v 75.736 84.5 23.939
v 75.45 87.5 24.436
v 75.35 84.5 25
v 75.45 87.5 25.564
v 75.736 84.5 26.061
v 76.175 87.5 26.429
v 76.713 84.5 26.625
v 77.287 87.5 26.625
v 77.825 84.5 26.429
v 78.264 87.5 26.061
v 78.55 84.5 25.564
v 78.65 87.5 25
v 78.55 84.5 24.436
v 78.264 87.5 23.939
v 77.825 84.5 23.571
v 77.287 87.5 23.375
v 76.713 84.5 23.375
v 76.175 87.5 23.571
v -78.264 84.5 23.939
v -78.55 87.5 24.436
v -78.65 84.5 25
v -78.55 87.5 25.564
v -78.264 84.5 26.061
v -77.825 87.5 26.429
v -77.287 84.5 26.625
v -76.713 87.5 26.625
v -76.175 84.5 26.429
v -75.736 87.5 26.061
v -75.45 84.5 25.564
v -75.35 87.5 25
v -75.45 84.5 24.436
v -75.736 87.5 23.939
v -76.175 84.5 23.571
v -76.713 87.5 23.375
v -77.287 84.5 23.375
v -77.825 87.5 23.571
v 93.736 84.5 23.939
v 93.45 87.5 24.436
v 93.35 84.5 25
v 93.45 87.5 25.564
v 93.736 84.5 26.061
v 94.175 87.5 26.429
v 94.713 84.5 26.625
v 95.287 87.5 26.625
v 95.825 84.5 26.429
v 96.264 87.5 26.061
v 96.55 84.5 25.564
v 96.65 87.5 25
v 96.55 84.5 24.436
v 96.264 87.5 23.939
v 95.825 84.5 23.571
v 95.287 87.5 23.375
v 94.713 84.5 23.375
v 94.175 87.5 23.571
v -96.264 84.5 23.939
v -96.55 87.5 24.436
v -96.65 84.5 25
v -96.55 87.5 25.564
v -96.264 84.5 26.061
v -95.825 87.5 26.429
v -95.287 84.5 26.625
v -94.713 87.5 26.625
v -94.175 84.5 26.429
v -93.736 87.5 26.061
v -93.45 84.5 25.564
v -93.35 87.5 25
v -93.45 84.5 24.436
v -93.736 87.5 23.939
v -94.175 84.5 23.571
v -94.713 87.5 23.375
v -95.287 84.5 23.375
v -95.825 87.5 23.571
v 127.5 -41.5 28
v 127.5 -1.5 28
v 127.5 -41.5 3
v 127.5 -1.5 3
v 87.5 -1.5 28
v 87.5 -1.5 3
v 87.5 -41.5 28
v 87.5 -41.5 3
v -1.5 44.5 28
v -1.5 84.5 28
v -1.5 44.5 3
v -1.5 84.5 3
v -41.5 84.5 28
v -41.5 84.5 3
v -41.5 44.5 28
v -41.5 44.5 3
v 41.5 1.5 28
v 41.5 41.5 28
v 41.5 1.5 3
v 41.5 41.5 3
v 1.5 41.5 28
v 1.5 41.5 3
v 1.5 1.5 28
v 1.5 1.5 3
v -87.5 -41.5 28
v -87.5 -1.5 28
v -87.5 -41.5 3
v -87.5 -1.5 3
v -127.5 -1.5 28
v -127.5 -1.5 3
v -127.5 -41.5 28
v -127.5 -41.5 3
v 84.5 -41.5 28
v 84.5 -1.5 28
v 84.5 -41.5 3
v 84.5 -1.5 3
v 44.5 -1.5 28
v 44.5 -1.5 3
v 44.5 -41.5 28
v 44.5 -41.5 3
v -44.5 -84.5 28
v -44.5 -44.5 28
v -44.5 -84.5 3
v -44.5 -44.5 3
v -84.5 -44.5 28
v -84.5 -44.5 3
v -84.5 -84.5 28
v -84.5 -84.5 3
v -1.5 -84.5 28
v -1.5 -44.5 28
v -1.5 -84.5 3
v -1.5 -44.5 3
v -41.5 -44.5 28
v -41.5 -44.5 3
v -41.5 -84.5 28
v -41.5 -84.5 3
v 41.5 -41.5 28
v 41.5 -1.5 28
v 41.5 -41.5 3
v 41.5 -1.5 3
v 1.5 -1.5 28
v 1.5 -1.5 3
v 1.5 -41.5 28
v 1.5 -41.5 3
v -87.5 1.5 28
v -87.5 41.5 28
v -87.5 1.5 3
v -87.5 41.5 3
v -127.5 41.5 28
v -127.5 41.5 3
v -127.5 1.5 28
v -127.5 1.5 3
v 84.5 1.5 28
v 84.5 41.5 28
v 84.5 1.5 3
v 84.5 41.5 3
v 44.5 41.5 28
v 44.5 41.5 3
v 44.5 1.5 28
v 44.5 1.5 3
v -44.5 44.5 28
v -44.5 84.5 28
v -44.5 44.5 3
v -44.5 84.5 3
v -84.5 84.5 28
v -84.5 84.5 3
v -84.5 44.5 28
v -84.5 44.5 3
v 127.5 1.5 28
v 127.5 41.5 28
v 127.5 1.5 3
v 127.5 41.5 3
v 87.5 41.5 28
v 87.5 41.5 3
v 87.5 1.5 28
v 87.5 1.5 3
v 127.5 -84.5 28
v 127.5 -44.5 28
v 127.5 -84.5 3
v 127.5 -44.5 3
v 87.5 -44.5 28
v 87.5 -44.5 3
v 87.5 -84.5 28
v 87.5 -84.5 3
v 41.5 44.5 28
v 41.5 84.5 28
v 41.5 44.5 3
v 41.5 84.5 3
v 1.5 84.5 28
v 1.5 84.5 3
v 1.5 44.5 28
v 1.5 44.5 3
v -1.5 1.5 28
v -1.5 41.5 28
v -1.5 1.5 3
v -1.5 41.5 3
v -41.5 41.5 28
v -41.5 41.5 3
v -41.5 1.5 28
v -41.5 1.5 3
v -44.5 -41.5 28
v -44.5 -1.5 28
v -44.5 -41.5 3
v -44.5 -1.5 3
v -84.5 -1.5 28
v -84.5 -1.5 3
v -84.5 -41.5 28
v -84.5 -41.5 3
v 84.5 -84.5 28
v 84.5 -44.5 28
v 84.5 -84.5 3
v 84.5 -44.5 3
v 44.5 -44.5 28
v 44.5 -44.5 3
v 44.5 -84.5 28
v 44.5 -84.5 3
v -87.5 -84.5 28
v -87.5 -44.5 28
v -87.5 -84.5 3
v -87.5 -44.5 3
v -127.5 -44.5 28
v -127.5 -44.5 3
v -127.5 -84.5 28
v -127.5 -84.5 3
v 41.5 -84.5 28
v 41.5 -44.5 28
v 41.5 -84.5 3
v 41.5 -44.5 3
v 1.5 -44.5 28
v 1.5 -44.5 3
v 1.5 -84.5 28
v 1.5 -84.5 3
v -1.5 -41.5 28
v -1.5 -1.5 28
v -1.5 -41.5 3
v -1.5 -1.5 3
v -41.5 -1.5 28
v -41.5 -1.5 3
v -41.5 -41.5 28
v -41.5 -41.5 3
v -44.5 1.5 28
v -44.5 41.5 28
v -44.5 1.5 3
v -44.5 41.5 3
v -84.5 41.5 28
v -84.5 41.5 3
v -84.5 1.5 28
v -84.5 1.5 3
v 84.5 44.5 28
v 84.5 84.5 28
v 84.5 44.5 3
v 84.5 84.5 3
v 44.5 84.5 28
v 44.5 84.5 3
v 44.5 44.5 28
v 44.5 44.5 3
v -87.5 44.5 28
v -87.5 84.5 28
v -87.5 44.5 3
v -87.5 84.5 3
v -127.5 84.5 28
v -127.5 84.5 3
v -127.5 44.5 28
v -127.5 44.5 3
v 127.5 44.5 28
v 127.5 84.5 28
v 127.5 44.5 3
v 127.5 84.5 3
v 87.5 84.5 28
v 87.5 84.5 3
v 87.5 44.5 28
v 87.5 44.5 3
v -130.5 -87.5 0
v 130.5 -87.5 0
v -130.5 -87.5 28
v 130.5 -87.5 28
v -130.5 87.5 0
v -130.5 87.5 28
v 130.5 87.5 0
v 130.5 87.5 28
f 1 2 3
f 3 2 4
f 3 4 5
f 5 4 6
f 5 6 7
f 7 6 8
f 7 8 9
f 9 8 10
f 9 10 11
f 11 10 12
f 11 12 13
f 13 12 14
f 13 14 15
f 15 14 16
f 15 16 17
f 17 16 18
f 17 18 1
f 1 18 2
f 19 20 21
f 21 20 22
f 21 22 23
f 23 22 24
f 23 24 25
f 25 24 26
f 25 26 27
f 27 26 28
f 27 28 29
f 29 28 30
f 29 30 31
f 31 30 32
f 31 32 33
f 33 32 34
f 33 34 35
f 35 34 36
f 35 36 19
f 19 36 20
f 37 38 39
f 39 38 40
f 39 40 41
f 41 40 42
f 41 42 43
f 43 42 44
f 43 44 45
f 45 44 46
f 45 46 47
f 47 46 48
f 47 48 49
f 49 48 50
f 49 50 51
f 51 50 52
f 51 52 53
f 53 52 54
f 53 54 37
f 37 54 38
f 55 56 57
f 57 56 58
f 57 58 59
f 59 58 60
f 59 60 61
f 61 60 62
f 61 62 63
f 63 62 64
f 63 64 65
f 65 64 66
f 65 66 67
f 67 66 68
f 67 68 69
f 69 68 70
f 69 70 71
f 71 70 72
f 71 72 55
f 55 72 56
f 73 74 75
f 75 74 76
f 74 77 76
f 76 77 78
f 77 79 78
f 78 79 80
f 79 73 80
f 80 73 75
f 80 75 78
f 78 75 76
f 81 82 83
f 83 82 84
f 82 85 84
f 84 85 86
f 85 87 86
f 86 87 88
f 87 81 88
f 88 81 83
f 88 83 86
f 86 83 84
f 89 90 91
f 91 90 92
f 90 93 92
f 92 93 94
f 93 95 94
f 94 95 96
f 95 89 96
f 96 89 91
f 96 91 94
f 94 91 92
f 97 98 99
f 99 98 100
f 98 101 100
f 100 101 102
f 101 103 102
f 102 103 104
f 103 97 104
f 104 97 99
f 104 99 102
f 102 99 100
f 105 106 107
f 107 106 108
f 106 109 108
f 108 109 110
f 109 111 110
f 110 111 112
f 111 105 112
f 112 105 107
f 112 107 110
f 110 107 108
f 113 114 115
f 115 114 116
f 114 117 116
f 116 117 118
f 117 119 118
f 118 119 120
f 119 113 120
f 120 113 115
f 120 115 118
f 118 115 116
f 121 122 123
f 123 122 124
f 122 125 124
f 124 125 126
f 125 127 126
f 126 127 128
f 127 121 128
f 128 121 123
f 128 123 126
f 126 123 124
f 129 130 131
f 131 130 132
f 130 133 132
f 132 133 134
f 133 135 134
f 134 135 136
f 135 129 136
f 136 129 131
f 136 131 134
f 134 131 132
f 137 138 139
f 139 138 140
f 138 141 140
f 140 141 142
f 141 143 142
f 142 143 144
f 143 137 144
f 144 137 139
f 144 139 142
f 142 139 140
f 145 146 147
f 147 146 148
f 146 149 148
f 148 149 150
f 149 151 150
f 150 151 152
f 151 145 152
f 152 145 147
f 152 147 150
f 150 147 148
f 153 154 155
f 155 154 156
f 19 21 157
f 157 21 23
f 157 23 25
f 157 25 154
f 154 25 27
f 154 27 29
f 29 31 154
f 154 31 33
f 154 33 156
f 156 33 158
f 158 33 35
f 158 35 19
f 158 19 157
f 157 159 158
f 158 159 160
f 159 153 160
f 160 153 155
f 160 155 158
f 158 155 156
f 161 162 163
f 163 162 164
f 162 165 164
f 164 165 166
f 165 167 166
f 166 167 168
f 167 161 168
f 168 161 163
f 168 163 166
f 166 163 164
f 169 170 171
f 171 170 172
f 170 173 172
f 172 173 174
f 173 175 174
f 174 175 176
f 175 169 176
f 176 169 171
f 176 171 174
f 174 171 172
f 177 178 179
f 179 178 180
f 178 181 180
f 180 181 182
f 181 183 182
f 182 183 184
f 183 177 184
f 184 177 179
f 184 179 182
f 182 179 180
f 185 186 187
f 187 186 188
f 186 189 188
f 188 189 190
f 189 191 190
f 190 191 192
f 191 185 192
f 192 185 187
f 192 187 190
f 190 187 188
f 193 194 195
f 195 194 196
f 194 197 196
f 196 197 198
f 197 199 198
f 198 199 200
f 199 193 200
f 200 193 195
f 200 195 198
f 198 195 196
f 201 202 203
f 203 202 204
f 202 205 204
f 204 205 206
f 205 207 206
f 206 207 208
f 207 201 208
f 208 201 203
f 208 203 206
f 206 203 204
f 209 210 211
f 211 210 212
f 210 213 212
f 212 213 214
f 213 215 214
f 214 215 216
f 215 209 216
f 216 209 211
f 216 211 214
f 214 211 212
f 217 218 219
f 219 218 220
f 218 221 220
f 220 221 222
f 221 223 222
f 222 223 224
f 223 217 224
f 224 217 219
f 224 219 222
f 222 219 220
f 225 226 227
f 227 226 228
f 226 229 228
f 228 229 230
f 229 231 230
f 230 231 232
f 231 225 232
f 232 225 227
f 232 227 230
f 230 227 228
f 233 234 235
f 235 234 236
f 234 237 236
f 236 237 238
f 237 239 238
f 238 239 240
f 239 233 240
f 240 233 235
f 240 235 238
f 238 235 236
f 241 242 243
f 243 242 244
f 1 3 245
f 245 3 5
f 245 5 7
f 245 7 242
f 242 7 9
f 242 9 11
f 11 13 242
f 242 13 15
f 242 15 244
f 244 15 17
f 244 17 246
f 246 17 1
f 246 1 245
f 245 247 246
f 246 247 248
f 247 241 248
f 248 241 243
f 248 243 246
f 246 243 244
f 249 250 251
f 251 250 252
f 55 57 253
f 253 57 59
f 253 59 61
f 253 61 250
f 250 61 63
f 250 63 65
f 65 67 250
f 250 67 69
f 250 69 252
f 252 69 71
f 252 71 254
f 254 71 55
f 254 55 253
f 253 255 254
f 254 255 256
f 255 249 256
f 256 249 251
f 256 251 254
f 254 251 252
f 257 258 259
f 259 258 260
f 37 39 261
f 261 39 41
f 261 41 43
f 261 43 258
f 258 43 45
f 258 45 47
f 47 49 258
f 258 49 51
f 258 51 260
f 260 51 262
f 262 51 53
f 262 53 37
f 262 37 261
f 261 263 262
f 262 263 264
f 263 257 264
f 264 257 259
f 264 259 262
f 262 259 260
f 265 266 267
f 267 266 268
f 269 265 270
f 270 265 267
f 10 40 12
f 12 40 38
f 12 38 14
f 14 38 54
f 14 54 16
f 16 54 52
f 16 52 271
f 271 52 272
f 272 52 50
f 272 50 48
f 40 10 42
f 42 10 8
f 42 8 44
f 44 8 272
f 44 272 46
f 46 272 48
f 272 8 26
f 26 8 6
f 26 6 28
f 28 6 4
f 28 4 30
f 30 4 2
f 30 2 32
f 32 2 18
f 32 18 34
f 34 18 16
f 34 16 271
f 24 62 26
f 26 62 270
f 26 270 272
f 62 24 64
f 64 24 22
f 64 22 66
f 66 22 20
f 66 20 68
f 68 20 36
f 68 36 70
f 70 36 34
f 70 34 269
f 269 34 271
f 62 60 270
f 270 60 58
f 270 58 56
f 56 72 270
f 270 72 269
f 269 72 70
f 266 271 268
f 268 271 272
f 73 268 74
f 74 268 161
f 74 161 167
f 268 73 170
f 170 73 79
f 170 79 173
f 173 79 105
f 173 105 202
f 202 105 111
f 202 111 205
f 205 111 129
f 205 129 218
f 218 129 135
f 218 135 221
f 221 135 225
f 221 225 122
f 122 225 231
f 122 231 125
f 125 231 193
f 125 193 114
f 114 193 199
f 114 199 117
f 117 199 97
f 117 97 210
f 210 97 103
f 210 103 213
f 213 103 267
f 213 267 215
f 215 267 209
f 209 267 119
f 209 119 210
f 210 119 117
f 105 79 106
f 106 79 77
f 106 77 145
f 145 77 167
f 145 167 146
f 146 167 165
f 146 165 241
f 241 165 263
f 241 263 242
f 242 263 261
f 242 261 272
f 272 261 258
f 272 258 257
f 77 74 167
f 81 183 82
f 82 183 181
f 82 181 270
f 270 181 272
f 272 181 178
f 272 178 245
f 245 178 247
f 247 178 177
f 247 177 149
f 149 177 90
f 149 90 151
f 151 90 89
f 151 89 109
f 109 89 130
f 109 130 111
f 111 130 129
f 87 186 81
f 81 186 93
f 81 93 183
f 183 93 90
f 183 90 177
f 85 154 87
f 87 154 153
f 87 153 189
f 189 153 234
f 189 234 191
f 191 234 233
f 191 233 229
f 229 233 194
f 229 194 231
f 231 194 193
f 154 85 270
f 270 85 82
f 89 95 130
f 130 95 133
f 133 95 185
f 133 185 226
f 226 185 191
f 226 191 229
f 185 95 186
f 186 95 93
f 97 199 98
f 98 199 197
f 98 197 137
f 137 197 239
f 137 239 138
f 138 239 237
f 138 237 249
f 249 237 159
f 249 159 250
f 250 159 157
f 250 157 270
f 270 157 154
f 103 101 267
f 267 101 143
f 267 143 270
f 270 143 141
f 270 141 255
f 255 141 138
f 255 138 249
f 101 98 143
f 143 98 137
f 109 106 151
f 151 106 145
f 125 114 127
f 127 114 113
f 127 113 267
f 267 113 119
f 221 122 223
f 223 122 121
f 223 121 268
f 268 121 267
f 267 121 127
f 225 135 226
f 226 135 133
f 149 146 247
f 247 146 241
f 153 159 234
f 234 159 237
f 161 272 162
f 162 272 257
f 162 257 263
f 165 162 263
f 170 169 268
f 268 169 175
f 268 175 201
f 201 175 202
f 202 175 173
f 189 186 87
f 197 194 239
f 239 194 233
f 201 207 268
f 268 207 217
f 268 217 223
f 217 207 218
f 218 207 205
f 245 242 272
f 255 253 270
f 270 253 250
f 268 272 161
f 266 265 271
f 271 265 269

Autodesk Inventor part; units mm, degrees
ref_plane "YZ Plane" through (0, 0, 0) normal (1, 0, 0) x (0, 1, 0)
ref_plane "XZ Plane" through (0, 0, 0) normal (0, 1, 0) x (-1, 0, 0)
ref_plane "XY Plane" through (0, 0, 0) normal (0, 0, 1) x (1, 0, 0)
sketch "Sketch1" plane through (0, 0, 0) normal (0, 0, 1) x (1, 0, 0)
  line L0 (-130.5, -87.5) -> (130.5, -87.5)
  line L1 (130.5, -87.5) -> (130.5, 87.5)
  line L2 (130.5, 87.5) -> (-130.5, 87.5)
  line L3 (-130.5, 87.5) -> (-130.5, -87.5)
  line L4 (-130.5, -87.5) -> (130.5, 87.5) construction
  line L5 (130.5, -87.5) -> (-130.5, 87.5) construction
  point P0 (0, 0)
  dimension "d0" = 261
  dimension "d1" = 175
extrude "Extrusion1" add sketch "Sketch1" along normal blind 28
sketch "Sketch2" plane through (0, 0, 28) normal (0, 0, 1) x (1, 0, 0)
  line L0 (-127.5, 84.5) -> (-87.5, 84.5)
  line L1 (-87.5, 84.5) -> (-87.5, 44.5)
  line L2 (-87.5, 44.5) -> (-127.5, 44.5)
  line L3 (-127.5, 44.5) -> (-127.5, 84.5)
  line L4 (-127.5, 84.5) -> (-87.5, 44.5) construction
  line L5 (-87.5, 84.5) -> (-127.5, 44.5) construction
  line L6 (130.5, 87.5) -> (-130.5, 87.5) projected
  line L7 (-130.5, 87.5) -> (-130.5, -87.5) projected
  line L8 (-84.5, 84.5) -> (-44.5, 84.5)
  line L9 (-44.5, 84.5) -> (-44.5, 44.5)
  line L10 (-44.5, 44.5) -> (-84.5, 44.5)
  line L11 (-84.5, 44.5) -> (-84.5, 84.5)
  line L12 (-84.5, 84.5) -> (-44.5, 44.5) construction
  line L13 (-44.5, 84.5) -> (-84.5, 44.5) construction
  line L14 (-41.5, 84.5) -> (-1.5, 84.5)
  line L15 (-1.5, 84.5) -> (-1.5, 44.5)
  line L16 (-1.5, 44.5) -> (-41.5, 44.5)
  line L17 (-41.5, 44.5) -> (-41.5, 84.5)
  line L18 (-41.5, 84.5) -> (-1.5, 44.5) construction
  line L19 (-1.5, 84.5) -> (-41.5, 44.5) construction
  line L20 (1.5, 84.5) -> (41.5, 84.5)
  line L21 (41.5, 84.5) -> (41.5, 44.5)
  line L22 (41.5, 44.5) -> (1.5, 44.5)
  line L23 (1.5, 44.5) -> (1.5, 84.5)
  line L24 (1.5, 84.5) -> (41.5, 44.5) construction
  line L25 (41.5, 84.5) -> (1.5, 44.5) construction
  line L26 (44.5, 84.5) -> (84.5, 84.5)
  line L27 (84.5, 84.5) -> (84.5, 44.5)
  line L28 (84.5, 44.5) -> (44.5, 44.5)
  line L29 (44.5, 44.5) -> (44.5, 84.5)
  line L30 (44.5, 84.5) -> (84.5, 44.5) construction
  line L31 (84.5, 84.5) -> (44.5, 44.5) construction
  line L32 (-127.5, 41.5) -> (-87.5, 41.5)
  line L33 (-87.5, 41.5) -> (-87.5, 1.5)
  line L34 (-87.5, 1.5) -> (-127.5, 1.5)
  line L35 (-127.5, 1.5) -> (-127.5, 41.5)
  line L36 (-127.5, 41.5) -> (-87.5, 1.5) construction
  line L37 (-87.5, 41.5) -> (-127.5, 1.5) construction
  line L38 (-84.5, 41.5) -> (-44.5, 41.5)
  line L39 (-44.5, 41.5) -> (-44.5, 1.5)
  line L40 (-44.5, 1.5) -> (-84.5, 1.5)
  line L41 (-84.5, 1.5) -> (-84.5, 41.5)
  line L42 (-84.5, 41.5) -> (-44.5, 1.5) construction
  line L43 (-44.5, 41.5) -> (-84.5, 1.5) construction
  line L44 (-41.5, 41.5) -> (-1.5, 41.5)
  line L45 (-1.5, 41.5) -> (-1.5, 1.5)
  line L46 (-1.5, 1.5) -> (-41.5, 1.5)
  line L47 (-41.5, 1.5) -> (-41.5, 41.5)
  line L48 (-41.5, 41.5) -> (-1.5, 1.5) construction
  line L49 (-1.5, 41.5) -> (-41.5, 1.5) construction
  line L50 (1.5, 41.5) -> (41.5, 41.5)
  line L51 (41.5, 41.5) -> (41.5, 1.5)
  line L52 (41.5, 1.5) -> (1.5, 1.5)
  line L53 (1.5, 1.5) -> (1.5, 41.5)
  line L54 (1.5, 41.5) -> (41.5, 1.5) construction
  line L55 (41.5, 41.5) -> (1.5, 1.5) construction
  line L56 (44.5, 41.5) -> (84.5, 41.5)
  line L57 (84.5, 41.5) -> (84.5, 1.5)
  line L58 (84.5, 1.5) -> (44.5, 1.5)
  line L59 (44.5, 1.5) -> (44.5, 41.5)
  line L60 (44.5, 41.5) -> (84.5, 1.5) construction
  line L61 (84.5, 41.5) -> (44.5, 1.5) construction
  line L62 (-127.5, -1.5) -> (-87.5, -1.5)
  line L63 (-87.5, -1.5) -> (-87.5, -41.5)
  line L64 (-87.5, -41.5) -> (-127.5, -41.5)
  line L65 (-127.5, -41.5) -> (-127.5, -1.5)
  line L66 (-127.5, -1.5) -> (-87.5, -41.5) construction
  line L67 (-87.5, -1.5) -> (-127.5, -41.5) construction
  line L68 (-84.5, -1.5) -> (-44.5, -1.5)
  line L69 (-44.5, -1.5) -> (-44.5, -41.5)
  line L70 (-44.5, -41.5) -> (-84.5, -41.5)
  line L71 (-84.5, -41.5) -> (-84.5, -1.5)
  line L72 (-84.5, -1.5) -> (-44.5, -41.5) construction
  line L73 (-44.5, -1.5) -> (-84.5, -41.5) construction
  line L74 (-41.5, -1.5) -> (-1.5, -1.5)
  line L75 (-1.5, -1.5) -> (-1.5, -41.5)
  line L76 (-1.5, -41.5) -> (-41.5, -41.5)
  line L77 (-41.5, -41.5) -> (-41.5, -1.5)
  line L78 (-41.5, -1.5) -> (-1.5, -41.5) construction
  line L79 (-1.5, -1.5) -> (-41.5, -41.5) construction
  line L80 (1.5, -1.5) -> (41.5, -1.5)
  line L81 (41.5, -1.5) -> (41.5, -41.5)
  line L82 (41.5, -41.5) -> (1.5, -41.5)
  line L83 (1.5, -41.5) -> (1.5, -1.5)
  line L84 (1.5, -1.5) -> (41.5, -41.5) construction
  line L85 (41.5, -1.5) -> (1.5, -41.5) construction
  line L86 (44.5, -1.5) -> (84.5, -1.5)
  line L87 (84.5, -1.5) -> (84.5, -41.5)
  line L88 (84.5, -41.5) -> (44.5, -41.5)
  line L89 (44.5, -41.5) -> (44.5, -1.5)
  line L90 (44.5, -1.5) -> (84.5, -41.5) construction
  line L91 (84.5, -1.5) -> (44.5, -41.5) construction
  line L92 (-127.5, -44.5) -> (-87.5, -44.5)
  line L93 (-87.5, -44.5) -> (-87.5, -84.5)
  line L94 (-87.5, -84.5) -> (-127.5, -84.5)
  line L95 (-127.5, -84.5) -> (-127.5, -44.5)
  line L96 (-127.5, -44.5) -> (-87.5, -84.5) construction
  line L97 (-87.5, -44.5) -> (-127.5, -84.5) construction
  line L98 (-84.5, -44.5) -> (-44.5, -44.5)
  line L99 (-44.5, -44.5) -> (-44.5, -84.5)
  line L100 (-44.5, -84.5) -> (-84.5, -84.5)
  line L101 (-84.5, -84.5) -> (-84.5, -44.5)
  line L102 (-84.5, -44.5) -> (-44.5, -84.5) construction
  line L103 (-44.5, -44.5) -> (-84.5, -84.5) construction
  line L104 (-41.5, -44.5) -> (-1.5, -44.5)
  line L105 (-1.5, -44.5) -> (-1.5, -84.5)
  line L106 (-1.5, -84.5) -> (-41.5, -84.5)
  line L107 (-41.5, -84.5) -> (-41.5, -44.5)
  line L108 (-41.5, -44.5) -> (-1.5, -84.5) construction
  line L109 (-1.5, -44.5) -> (-41.5, -84.5) construction
  line L110 (1.5, -44.5) -> (41.5, -44.5)
  line L111 (41.5, -44.5) -> (41.5, -84.5)
  line L112 (41.5, -84.5) -> (1.5, -84.5)
  line L113 (1.5, -84.5) -> (1.5, -44.5)
  line L114 (1.5, -44.5) -> (41.5, -84.5) construction
  line L115 (41.5, -44.5) -> (1.5, -84.5) construction
  line L116 (44.5, -44.5) -> (84.5, -44.5)
  line L117 (84.5, -44.5) -> (84.5, -84.5)
  line L118 (84.5, -84.5) -> (44.5, -84.5)
  line L119 (44.5, -84.5) -> (44.5, -44.5)
  line L120 (44.5, -44.5) -> (84.5, -84.5) construction
  line L121 (84.5, -44.5) -> (44.5, -84.5) construction
  line L122 (87.5, 84.5) -> (127.5, 84.5)
  line L123 (127.5, 84.5) -> (127.5, 44.5)
  line L124 (127.5, 44.5) -> (87.5, 44.5)
  line L125 (87.5, 44.5) -> (87.5, 84.5)
  line L126 (87.5, 84.5) -> (127.5, 44.5) construction
  line L127 (127.5, 84.5) -> (87.5, 44.5) construction
  line L128 (87.5, 41.5) -> (127.5, 41.5)
  line L129 (127.5, 41.5) -> (127.5, 1.5)
  line L130 (127.5, 1.5) -> (87.5, 1.5)
  line L131 (87.5, 1.5) -> (87.5, 41.5)
  line L132 (87.5, 41.5) -> (127.5, 1.5) construction
  line L133 (127.5, 41.5) -> (87.5, 1.5) construction
  line L134 (87.5, -1.5) -> (127.5, -1.5)
  line L135 (127.5, -1.5) -> (127.5, -41.5)
  line L136 (127.5, -41.5) -> (87.5, -41.5)
  line L137 (87.5, -41.5) -> (87.5, -1.5)
  line L138 (87.5, -1.5) -> (127.5, -41.5) construction
  line L139 (127.5, -1.5) -> (87.5, -41.5) construction
  line L140 (87.5, -44.5) -> (127.5, -44.5)
  line L141 (127.5, -44.5) -> (127.5, -84.5)
  line L142 (127.5, -84.5) -> (87.5, -84.5)
  line L143 (87.5, -84.5) -> (87.5, -44.5)
  line L144 (87.5, -44.5) -> (127.5, -84.5) construction
  line L145 (127.5, -44.5) -> (87.5, -84.5) construction
  point P0 (0, 0)
  point P1 (-107.5, 64.5)
  point P2 (-64.5, 64.5)
  point P3 (-21.5, 64.5)
  point P4 (21.5, 64.5)
  point P5 (64.5, 64.5)
  point P6 (-107.5, 21.5)
  point P7 (-64.5, 21.5)
  point P8 (-21.5, 21.5)
  point P9 (21.5, 21.5)
  point P10 (64.5, 21.5)
  point P11 (-107.5, -21.5)
  point P12 (-64.5, -21.5)
  point P13 (-21.5, -21.5)
  point P14 (21.5, -21.5)
  point P15 (64.5, -21.5)
  point P16 (-107.5, -64.5)
  point P17 (-64.5, -64.5)
  point P18 (-21.5, -64.5)
  point P19 (21.5, -64.5)
  point P20 (64.5, -64.5)
  point P21 (107.5, 64.5)
  point P22 (107.5, 21.5)
  point P23 (107.5, -21.5)
  point P24 (107.5, -64.5)
  dimension "d4" = 40
  dimension "d5" = 3
  dimension "d6" = 3
  dimension "d7" = 40
  dimension "d10" = 43
  dimension "d13" = 43
extrude "Extrusion2" cut sketch "Sketch2" against normal blind 25
sketch "Sketch3" plane through (-130.5, 87.5, 0) normal (0, 1, 0) x (1, 0, 0)
  line L0 (46, -28) -> (46, -3) construction
  line L1 (43, -28) -> (43, -3) construction
  line L2 (43, -28) -> (43, -3) projected
  line L3 (43, -25) -> (46, -25) construction
  line L4 (46, -28) -> (46, -3) projected
  line L5 (261, -28) -> (0, -28) projected
  circle A0 centre (53.5, -25) radius 1.65
  circle A1 centre (35.5, -25) radius 1.65
  line L6 (172, -28) -> (172, -3) construction
  line L7 (175, -28) -> (175, -3) construction
  circle A2 centre (225.5, -25) radius 1.65
  circle A3 centre (207.5, -25) radius 1.65
  line L8 (261, 0) -> (261, -28) projected
  point P0 (130.5, 0)
  point P1 (44.5, -25)
  dimension "d20" = 3
  dimension "d21" = 3.3
  dimension "d22" = 9
  dimension "d23" = 3.3
  dimension "d24" = 9
  dimension "d25" = 3.3
  dimension "d31" = 3.3
  dimension "d35" = 18
  dimension "d36" = 35.5
extrude "Extrusion3" cut sketch "Sketch3" against normal blind 10
equation "\"d0\" = box_length"
equation "\"d1\" = box_width"
equation "\"d2\" = hole_height + wall"
equation "\"d4\" = hole"
equation "\"d5\" = wall"
equation "\"d6\" = wall"
equation "\"d7\" = hole"
equation "\"d10\" = hole + wall"
equation "\"d13\" = hole + wall"
equation "\"d16\" = hole_height"
equation "\"d23\" = d21"
equation "\"d24\" = d22"
equation "\"d25\" = d21"
equation "\"d31\" = d25"
equation "\"hole\" = 40"
equation "\"wall\" = 3"
equation "\"hole_height\" = 25"
equation "\"box_length\" = 261"
equation "\"box_width\" = 175"
properties part number "RatPelletBox_v03"
